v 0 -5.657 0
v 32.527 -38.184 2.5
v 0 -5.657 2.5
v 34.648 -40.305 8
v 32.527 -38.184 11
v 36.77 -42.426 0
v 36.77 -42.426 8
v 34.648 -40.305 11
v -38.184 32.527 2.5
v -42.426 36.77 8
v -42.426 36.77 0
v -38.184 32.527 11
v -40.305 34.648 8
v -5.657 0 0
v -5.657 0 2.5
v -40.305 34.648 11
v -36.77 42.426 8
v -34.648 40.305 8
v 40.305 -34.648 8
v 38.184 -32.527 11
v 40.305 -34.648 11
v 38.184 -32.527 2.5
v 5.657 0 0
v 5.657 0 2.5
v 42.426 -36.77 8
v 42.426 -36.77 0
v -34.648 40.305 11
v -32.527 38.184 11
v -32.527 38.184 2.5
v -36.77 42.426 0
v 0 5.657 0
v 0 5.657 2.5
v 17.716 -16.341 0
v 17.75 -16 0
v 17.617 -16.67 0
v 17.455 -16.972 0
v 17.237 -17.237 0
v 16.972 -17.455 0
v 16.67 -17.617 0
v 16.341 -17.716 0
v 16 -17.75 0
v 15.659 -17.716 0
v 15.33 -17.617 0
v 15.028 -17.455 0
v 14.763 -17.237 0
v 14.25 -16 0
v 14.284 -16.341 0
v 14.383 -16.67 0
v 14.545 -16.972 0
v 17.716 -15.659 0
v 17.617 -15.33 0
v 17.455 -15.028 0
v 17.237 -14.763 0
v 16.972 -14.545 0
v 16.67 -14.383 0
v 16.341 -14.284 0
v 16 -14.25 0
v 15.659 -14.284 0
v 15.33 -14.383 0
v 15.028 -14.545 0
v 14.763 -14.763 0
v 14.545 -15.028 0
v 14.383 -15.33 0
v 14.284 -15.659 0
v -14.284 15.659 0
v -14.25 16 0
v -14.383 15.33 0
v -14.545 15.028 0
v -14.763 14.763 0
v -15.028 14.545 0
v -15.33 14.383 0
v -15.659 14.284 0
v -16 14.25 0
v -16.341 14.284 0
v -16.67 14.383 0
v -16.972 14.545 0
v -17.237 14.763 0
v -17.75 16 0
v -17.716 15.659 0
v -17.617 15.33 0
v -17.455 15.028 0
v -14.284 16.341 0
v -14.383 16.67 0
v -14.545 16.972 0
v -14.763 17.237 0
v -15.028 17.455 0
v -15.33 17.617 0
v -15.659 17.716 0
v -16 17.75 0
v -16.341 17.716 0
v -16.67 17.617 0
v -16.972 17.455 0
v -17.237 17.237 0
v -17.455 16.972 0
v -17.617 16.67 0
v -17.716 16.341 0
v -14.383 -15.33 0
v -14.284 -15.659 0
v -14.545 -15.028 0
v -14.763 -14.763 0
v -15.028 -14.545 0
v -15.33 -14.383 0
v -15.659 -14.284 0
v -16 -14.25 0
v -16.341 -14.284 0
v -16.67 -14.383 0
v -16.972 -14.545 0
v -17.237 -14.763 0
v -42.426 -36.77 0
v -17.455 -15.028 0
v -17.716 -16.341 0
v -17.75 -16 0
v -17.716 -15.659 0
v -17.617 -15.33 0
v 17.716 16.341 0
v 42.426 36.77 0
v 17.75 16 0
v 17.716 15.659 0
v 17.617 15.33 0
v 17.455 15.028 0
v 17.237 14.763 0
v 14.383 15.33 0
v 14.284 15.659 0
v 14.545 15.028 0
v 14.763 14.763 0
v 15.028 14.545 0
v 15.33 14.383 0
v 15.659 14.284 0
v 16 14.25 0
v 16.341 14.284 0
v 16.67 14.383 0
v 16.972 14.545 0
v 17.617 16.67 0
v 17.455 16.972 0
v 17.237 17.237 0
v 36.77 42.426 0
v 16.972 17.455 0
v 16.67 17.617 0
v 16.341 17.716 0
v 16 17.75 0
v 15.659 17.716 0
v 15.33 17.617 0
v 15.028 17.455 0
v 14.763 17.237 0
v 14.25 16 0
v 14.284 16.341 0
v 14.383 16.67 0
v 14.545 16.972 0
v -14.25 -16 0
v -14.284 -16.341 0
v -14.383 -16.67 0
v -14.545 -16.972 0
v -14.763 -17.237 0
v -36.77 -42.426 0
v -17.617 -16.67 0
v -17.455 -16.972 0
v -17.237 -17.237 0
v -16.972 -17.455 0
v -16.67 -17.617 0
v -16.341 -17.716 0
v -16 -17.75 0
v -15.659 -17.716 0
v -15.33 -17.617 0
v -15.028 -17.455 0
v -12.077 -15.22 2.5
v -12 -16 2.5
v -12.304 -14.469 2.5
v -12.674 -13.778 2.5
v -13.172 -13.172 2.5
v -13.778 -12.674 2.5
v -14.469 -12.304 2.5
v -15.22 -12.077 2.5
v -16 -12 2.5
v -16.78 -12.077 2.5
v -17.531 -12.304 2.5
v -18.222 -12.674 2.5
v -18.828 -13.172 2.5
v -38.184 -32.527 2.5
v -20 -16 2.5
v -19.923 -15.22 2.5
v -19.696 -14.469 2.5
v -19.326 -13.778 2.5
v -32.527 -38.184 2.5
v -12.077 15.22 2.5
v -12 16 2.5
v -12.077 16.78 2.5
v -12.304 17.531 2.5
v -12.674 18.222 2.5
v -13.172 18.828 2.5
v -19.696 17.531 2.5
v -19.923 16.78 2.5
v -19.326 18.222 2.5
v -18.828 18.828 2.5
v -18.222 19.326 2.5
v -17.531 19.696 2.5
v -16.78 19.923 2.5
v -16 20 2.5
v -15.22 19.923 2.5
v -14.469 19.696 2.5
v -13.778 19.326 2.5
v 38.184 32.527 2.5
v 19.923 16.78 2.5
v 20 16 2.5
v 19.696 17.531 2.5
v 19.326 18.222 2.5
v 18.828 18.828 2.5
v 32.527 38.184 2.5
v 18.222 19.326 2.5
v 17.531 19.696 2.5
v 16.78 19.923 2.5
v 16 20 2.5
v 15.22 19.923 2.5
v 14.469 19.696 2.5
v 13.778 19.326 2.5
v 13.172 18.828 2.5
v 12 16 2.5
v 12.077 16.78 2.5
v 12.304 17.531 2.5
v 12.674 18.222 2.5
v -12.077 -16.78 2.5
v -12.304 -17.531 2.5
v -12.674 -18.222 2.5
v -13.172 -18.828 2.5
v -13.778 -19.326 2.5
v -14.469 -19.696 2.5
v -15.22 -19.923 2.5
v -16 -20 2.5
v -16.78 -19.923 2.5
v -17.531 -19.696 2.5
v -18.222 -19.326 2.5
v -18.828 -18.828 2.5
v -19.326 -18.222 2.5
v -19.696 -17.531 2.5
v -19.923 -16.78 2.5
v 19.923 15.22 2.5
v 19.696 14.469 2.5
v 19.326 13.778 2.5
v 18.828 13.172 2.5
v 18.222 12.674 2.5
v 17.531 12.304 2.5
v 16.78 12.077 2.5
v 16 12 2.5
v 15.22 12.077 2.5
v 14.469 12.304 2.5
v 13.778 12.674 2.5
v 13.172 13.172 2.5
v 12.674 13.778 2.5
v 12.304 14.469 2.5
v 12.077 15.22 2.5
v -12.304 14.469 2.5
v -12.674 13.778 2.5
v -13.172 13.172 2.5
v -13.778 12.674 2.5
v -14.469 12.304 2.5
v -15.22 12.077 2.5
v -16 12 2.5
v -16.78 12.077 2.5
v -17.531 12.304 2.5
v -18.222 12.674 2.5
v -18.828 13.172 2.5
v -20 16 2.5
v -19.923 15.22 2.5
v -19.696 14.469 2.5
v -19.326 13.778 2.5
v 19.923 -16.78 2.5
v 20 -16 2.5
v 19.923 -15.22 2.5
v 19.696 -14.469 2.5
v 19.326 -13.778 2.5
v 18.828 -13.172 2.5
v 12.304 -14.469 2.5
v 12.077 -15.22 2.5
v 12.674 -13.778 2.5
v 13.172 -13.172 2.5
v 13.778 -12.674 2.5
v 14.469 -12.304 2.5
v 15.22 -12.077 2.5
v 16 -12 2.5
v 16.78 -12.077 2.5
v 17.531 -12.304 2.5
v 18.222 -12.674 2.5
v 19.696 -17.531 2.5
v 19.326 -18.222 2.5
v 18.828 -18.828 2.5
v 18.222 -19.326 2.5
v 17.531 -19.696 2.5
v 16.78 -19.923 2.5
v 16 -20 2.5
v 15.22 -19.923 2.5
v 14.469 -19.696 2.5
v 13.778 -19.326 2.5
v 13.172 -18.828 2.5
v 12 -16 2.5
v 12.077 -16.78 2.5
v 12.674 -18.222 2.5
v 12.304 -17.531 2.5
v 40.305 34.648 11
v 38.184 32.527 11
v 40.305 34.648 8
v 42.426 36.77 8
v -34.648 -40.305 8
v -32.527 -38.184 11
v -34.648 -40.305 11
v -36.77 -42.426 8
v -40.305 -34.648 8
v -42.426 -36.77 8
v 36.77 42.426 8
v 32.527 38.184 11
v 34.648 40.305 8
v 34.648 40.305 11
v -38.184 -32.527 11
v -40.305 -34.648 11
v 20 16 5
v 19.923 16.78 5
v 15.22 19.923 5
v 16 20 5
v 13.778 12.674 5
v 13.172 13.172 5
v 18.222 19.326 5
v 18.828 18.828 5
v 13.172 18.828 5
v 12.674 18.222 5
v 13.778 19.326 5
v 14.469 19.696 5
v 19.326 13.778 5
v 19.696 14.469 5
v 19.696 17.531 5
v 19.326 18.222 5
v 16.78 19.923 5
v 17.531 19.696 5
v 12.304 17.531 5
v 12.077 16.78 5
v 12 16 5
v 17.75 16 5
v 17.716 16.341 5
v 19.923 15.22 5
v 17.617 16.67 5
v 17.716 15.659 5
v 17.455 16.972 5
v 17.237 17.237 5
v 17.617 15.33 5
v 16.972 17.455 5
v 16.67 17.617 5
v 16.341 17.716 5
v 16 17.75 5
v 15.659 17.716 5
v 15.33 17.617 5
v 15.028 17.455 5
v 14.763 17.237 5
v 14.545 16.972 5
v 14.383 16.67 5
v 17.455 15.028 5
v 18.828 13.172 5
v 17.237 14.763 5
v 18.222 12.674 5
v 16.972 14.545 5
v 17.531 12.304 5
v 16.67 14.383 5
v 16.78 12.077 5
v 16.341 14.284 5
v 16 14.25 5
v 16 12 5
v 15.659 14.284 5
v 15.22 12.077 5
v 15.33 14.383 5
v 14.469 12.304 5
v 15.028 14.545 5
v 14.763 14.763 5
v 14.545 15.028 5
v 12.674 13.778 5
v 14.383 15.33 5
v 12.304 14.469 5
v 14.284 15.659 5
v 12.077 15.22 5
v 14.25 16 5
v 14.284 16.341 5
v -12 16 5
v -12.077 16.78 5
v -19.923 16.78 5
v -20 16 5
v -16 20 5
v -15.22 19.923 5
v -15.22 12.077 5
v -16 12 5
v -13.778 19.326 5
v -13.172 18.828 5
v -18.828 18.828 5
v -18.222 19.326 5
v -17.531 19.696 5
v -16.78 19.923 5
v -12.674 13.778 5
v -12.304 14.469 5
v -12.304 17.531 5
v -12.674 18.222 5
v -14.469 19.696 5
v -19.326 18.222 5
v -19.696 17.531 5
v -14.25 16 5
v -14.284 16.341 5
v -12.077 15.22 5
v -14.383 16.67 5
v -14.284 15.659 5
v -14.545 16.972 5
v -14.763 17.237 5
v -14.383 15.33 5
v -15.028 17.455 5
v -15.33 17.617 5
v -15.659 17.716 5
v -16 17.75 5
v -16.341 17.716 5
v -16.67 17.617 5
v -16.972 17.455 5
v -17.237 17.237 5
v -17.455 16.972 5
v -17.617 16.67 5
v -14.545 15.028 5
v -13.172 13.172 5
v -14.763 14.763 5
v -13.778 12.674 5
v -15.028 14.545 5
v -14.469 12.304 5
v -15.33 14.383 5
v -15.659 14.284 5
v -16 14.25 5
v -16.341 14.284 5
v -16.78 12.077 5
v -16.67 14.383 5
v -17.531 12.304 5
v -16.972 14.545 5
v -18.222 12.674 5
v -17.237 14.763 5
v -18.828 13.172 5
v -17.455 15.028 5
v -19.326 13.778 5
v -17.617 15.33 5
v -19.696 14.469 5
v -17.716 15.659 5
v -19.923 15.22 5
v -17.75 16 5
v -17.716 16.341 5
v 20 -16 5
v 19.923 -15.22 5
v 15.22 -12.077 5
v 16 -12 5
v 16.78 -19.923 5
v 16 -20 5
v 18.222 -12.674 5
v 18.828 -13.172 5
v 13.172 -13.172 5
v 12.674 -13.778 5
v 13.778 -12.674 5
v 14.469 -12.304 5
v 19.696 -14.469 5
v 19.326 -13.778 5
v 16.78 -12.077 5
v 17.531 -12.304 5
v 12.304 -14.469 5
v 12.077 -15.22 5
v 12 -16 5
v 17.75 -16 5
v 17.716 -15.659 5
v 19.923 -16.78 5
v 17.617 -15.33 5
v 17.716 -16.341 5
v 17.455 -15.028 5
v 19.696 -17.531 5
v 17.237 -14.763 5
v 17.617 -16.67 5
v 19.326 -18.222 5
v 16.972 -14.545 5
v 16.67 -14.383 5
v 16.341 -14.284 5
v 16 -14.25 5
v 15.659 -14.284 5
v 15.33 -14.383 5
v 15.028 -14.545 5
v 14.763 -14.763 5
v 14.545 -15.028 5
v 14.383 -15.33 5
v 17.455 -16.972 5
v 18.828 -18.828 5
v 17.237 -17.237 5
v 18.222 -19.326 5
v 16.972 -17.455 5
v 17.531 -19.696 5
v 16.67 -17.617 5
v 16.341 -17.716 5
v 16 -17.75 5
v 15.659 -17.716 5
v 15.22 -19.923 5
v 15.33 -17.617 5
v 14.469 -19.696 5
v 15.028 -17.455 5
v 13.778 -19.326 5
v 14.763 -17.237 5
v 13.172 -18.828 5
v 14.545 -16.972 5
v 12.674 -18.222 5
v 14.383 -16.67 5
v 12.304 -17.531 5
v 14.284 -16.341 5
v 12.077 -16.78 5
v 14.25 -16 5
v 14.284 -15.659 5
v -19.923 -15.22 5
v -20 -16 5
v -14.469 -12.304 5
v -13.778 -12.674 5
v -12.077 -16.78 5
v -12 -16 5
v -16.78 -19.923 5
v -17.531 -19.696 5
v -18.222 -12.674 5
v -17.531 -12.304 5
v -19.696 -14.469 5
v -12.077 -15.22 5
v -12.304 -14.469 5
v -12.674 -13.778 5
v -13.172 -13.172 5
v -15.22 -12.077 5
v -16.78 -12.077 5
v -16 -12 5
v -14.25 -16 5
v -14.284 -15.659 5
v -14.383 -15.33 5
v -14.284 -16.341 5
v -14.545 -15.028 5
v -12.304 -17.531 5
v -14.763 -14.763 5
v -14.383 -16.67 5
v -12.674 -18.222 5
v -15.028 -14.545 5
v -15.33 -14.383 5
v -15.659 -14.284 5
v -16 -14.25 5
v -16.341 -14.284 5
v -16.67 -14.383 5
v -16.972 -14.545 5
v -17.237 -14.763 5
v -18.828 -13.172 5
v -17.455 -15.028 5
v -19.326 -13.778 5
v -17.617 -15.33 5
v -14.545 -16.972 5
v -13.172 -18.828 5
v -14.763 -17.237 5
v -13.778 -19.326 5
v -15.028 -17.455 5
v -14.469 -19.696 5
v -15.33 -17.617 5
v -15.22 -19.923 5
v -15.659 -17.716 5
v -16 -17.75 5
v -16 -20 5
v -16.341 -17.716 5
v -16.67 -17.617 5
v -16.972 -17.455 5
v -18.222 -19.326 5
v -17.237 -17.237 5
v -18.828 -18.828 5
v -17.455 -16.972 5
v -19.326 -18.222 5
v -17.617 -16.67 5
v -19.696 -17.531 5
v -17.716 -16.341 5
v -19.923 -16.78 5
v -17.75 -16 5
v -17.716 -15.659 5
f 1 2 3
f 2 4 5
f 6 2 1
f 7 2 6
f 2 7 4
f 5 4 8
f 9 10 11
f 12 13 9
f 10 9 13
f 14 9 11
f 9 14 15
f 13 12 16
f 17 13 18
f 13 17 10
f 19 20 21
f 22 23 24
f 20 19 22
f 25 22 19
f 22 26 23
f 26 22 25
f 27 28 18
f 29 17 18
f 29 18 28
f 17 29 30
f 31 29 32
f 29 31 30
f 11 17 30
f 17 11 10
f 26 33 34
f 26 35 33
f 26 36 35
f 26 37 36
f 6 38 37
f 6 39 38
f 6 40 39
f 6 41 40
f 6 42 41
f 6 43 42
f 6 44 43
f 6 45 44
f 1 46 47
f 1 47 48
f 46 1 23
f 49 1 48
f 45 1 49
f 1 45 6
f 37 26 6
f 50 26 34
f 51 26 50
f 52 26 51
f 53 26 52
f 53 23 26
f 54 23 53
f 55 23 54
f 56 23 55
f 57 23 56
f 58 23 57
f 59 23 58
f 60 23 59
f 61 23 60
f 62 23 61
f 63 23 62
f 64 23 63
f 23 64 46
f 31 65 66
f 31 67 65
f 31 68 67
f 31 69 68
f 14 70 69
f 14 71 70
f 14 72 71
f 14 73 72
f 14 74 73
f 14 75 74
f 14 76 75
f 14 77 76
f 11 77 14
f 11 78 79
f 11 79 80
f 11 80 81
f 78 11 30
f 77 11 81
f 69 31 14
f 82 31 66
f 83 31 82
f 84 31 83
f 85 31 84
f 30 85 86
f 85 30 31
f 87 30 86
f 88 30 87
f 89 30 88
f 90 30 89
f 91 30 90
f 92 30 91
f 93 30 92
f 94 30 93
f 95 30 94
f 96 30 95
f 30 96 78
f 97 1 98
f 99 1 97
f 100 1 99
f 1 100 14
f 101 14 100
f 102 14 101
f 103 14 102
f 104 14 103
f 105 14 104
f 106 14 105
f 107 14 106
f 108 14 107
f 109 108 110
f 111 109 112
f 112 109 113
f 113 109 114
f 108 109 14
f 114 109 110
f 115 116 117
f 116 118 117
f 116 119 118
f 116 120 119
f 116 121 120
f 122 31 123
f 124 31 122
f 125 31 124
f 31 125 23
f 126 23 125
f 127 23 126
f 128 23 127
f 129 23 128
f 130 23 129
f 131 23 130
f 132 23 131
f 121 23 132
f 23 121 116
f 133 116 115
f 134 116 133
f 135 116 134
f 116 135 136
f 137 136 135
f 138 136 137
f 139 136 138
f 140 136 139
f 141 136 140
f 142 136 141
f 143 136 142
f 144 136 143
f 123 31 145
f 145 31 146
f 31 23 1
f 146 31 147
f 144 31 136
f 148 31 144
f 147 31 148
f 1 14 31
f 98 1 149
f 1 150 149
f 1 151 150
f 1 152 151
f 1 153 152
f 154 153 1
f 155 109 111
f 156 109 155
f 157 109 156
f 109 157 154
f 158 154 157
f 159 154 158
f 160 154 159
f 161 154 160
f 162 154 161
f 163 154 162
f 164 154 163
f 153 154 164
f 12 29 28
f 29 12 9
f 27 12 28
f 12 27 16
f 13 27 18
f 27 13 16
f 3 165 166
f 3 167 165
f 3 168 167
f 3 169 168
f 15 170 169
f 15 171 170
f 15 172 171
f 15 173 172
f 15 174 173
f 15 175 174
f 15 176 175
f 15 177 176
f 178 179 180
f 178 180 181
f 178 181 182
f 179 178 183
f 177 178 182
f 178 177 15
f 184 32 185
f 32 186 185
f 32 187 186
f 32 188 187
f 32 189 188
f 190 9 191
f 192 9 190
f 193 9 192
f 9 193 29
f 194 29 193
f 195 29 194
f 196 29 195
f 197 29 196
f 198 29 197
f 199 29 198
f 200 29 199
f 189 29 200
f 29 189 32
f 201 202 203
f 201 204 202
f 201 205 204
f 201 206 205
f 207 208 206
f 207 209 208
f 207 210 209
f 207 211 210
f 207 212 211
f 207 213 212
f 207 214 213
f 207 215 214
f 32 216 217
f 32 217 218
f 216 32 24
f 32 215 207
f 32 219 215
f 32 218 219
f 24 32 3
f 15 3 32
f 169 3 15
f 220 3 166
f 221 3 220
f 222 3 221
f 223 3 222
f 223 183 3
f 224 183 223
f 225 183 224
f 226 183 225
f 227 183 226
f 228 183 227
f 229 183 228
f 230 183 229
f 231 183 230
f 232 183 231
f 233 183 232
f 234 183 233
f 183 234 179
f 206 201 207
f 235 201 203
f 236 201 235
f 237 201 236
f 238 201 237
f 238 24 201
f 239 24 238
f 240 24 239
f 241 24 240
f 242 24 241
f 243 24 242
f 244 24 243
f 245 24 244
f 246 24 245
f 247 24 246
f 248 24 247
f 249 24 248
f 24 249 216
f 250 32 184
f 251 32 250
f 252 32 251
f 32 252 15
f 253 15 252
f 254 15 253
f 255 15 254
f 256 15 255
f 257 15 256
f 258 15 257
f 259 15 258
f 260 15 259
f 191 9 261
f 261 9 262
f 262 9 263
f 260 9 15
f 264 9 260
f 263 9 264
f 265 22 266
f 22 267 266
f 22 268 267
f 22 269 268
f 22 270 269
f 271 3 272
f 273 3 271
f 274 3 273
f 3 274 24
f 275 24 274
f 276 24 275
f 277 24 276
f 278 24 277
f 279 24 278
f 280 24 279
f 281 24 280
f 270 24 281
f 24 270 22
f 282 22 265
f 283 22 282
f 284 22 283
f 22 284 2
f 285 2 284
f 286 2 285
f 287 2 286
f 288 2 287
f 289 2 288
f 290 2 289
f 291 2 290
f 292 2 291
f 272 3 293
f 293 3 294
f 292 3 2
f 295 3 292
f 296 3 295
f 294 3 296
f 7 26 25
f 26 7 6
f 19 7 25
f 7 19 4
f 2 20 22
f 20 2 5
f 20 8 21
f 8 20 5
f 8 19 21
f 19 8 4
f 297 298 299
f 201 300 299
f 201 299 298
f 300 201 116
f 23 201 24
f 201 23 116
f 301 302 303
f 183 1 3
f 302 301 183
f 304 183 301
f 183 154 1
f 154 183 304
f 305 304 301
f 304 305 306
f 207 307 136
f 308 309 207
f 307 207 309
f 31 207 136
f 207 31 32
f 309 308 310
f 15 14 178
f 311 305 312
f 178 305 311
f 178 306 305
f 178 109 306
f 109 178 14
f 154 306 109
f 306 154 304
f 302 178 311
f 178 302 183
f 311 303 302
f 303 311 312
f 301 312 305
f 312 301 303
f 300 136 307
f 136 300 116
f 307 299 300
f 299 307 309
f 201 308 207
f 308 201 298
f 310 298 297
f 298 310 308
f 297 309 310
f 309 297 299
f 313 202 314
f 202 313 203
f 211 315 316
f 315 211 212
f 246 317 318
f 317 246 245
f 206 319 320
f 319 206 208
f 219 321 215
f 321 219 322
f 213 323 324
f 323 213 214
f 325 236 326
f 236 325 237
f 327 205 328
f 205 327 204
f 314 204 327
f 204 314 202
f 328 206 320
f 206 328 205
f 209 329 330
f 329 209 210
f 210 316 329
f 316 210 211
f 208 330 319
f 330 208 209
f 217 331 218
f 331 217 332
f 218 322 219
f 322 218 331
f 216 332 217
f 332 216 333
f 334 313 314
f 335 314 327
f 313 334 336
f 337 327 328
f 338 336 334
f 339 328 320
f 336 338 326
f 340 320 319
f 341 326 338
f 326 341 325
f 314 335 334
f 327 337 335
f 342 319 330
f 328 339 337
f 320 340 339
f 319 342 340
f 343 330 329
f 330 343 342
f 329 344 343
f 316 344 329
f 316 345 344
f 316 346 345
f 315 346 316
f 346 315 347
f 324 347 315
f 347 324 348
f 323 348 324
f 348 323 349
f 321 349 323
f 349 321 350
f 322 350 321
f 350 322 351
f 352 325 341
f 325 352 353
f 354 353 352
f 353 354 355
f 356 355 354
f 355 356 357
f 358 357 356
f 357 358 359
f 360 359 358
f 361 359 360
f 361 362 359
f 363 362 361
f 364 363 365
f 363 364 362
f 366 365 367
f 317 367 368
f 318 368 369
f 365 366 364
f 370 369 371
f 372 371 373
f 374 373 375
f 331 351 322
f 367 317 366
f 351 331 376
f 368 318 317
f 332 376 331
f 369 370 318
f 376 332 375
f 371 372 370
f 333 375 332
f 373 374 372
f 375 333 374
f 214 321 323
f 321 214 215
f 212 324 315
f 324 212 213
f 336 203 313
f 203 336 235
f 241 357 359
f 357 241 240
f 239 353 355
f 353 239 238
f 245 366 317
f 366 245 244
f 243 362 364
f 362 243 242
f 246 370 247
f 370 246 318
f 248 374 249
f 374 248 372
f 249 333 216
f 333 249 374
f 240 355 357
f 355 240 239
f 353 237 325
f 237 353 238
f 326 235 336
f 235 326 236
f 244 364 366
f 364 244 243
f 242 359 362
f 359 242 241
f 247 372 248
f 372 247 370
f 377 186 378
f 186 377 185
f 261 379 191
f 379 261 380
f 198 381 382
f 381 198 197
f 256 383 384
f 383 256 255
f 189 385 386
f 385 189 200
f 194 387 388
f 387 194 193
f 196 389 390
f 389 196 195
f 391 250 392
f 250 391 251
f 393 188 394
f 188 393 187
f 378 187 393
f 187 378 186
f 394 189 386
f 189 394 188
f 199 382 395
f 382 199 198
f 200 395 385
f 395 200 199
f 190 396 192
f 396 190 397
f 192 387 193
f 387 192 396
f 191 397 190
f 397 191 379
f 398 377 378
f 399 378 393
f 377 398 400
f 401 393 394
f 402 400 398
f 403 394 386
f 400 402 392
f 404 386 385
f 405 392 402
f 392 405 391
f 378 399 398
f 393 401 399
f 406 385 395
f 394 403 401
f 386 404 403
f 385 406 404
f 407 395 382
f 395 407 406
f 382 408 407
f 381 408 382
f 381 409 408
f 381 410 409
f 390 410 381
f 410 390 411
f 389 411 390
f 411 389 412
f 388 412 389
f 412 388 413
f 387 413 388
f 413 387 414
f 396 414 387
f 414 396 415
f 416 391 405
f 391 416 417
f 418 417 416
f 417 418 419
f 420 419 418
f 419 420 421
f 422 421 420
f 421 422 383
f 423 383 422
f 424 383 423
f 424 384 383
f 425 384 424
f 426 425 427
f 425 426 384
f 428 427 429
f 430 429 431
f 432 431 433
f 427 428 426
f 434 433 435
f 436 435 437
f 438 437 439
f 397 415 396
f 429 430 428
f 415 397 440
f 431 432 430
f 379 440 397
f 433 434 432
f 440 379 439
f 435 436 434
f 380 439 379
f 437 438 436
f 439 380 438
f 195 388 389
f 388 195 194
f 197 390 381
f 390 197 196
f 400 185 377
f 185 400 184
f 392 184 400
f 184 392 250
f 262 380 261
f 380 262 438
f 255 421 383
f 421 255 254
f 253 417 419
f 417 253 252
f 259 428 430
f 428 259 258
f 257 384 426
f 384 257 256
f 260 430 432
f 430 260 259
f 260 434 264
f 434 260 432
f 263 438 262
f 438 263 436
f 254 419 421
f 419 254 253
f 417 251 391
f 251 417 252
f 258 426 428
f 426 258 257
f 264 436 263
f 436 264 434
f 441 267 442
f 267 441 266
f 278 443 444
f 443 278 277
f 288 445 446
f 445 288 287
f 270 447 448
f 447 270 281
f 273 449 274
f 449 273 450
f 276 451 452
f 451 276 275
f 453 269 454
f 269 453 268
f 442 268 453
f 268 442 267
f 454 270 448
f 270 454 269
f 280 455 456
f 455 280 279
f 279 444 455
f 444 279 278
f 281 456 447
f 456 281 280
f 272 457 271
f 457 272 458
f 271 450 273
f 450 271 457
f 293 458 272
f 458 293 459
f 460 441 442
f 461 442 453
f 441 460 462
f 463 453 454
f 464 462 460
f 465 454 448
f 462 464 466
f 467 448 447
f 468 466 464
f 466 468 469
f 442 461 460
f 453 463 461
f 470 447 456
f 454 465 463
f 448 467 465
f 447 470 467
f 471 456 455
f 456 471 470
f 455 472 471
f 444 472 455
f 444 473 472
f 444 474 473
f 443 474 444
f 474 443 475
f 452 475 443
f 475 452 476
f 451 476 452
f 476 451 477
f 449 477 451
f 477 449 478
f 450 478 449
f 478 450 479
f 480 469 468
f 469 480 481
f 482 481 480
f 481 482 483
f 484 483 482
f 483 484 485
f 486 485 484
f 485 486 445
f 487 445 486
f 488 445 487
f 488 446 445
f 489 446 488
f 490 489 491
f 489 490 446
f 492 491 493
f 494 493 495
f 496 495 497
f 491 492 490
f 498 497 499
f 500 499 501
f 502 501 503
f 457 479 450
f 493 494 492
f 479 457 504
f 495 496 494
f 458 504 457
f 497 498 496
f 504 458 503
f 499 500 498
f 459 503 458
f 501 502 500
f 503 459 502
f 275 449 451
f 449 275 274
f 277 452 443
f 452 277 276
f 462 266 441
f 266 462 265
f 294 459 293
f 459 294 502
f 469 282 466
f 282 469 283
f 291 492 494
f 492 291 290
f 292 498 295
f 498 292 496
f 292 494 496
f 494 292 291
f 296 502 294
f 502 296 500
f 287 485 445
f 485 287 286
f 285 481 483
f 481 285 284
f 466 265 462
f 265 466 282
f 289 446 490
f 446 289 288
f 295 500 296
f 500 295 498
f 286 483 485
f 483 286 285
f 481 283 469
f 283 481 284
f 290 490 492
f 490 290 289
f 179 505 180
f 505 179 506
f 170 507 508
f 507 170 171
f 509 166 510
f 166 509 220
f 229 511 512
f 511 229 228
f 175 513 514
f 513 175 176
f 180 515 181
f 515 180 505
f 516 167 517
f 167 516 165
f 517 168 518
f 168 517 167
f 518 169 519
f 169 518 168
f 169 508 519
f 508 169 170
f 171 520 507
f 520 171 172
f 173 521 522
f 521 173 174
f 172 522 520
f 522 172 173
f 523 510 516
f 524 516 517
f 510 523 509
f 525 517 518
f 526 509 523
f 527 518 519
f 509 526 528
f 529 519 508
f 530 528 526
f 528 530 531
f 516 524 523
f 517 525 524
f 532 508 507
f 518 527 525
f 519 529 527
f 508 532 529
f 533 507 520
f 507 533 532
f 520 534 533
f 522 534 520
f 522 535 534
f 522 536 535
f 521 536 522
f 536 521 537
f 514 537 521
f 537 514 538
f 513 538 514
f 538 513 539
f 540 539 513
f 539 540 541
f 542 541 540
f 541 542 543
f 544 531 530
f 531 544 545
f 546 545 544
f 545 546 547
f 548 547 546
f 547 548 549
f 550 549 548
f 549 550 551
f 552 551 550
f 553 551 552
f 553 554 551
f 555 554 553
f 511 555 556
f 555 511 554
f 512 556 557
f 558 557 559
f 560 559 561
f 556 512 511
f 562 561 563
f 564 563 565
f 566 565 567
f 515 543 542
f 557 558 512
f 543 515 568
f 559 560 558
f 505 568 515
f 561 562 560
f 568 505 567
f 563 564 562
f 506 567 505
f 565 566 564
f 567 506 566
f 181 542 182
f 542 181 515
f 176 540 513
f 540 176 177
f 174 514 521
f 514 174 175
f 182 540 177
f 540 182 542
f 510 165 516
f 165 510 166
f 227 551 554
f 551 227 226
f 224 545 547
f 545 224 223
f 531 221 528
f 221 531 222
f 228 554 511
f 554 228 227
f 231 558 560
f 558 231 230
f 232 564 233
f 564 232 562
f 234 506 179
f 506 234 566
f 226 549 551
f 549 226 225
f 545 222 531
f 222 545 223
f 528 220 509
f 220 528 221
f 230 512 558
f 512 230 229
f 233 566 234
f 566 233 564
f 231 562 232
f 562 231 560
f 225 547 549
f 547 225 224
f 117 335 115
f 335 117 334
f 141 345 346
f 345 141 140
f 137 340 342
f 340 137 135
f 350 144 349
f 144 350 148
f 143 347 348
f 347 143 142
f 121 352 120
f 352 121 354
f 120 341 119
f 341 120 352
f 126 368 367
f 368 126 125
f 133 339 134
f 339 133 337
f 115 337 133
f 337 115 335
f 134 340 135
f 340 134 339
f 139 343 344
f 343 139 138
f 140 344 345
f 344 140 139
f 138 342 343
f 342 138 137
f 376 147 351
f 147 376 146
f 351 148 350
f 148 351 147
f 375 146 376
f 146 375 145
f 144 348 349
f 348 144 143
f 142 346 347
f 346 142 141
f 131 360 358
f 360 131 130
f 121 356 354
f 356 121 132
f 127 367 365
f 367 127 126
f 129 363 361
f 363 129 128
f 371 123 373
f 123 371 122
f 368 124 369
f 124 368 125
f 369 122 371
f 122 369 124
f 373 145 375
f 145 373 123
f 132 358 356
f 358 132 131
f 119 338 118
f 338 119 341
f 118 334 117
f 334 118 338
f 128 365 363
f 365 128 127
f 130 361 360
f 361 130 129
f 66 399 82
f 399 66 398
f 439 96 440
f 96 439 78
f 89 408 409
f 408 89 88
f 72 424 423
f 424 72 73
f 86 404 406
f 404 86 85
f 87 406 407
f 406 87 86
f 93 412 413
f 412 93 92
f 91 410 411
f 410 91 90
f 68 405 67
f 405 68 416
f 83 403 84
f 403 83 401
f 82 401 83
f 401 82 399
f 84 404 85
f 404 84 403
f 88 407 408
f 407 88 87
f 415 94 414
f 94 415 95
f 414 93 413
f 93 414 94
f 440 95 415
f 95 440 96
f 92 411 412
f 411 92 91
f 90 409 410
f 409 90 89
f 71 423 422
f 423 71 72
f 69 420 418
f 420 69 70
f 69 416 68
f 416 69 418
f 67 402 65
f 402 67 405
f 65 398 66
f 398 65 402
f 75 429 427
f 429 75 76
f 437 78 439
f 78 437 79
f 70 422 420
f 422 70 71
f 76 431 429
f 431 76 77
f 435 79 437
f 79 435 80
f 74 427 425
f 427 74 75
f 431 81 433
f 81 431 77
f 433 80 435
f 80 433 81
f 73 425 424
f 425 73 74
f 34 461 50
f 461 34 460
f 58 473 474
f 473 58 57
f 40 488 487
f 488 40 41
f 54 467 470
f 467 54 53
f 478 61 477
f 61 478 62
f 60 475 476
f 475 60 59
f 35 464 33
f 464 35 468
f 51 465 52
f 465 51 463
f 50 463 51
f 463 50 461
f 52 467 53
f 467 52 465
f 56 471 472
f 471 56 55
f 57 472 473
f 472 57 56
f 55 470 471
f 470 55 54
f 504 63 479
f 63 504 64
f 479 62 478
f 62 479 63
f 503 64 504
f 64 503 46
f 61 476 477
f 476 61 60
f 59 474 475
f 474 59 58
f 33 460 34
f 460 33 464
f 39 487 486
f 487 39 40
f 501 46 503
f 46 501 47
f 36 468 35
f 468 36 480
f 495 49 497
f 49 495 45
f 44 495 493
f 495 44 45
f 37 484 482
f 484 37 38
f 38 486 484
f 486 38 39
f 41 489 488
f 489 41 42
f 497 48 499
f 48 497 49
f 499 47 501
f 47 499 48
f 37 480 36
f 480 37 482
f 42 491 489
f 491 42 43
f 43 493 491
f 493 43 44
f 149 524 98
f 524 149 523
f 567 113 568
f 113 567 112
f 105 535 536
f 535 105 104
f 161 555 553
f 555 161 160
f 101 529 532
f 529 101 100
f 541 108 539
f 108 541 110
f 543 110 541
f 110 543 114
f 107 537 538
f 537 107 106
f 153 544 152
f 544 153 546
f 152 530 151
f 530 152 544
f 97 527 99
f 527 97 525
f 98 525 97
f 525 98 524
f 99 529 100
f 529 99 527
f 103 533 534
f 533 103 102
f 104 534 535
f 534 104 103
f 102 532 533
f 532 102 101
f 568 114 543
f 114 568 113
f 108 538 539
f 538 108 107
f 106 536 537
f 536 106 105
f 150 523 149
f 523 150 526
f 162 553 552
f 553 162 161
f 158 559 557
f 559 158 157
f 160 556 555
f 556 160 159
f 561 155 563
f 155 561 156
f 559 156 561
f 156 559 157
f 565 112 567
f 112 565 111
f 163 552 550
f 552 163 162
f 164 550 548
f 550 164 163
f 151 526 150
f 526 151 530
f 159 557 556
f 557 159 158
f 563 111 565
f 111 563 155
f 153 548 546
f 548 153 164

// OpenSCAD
module led5050()
{
    // 5050 SMD LED
    // Body
    color("white")
        difference()
        {
            translate([-2.5,-2.5,0.1])
                    cube([5,5,1.6]);
            translate([-2.7,-2.7,2])        
                rotate([0,0,45])        
                    cube([2,2,1],center=true);
        }

    // Yellow spot    
    translate([0,0,0.701])
        color("yellow")
            cylinder(h=1,r=2,$fn=100);

    // Pin
    color("gray")
        for(i=[-1.6,0,1.6])
            for(j=[-1,1])
            {
                translate([j * 2.2,i,0.1])
                    cube([1,1,0.2],center=true);
                translate([j * 2.6,i,0.4])
                    cube([0.2,1,0.8],center = true);
            }
}

b = 15;
h = 15;
w = 3;

/*
// loudspeaker plate
difference()
{
union()
{
    difference()
    {
        cylinder(h=50,d=160,$fn=100);
        translate([0,0,3])
            cylinder(h=47.001,d=154,$fn=100);
        // assembly holes
        for(i = [[50,50,-1],[-50,50,-1],[50,-50,-1],[-50,-50,-1]])
            translate(i)
                cylinder(h=7,d=3.5,$fn=32);
        // loudspeaker mounting holes
        for(i = [[41,41,-1],[-41,41,-1],[41,-41,-1],[-41,-41,-1]])
            translate(i)
                cylinder(h=7,d=4.5,$fn=32);
        // back plate cutout
        translate([61,-60,3])
            cube([20,120,50]);

        translate([0,0,-0.5])
            cylinder(h=4,d=92,$fn=100);
    }
    // back plate
    translate([58,-51,0])
        cube([3,5,50]);
    translate([59.5,-46,3])
        // Extruded triangle
        rotate(a=[90,-90,-90])
            linear_extrude(height = w, center = true, convexity = 10, twist = 0)
                polygon(points=[[0,0],[h,0],[0,b]], paths=[[0,1,2]]);
    translate([58,46,0])
        cube([3,5,50]);
    translate([58,-51,0])
        cube([3,102,8]);
    translate([59.5,46,3])
        // Extruded triangle
        rotate(a=[90,-90,90])
            linear_extrude(height = w, center = true, convexity = 10, twist = 0)
                polygon(points=[[0,0],[h,0],[0,b]], paths=[[0,1,2]]);

    // cylinder(h=3, d= 20, $fn=100);
    for(i=[0:4])
    {
        difference()
        {
            cylinder(h=3, d=84-i*16, $fn=100);
            translate([0,0,-0.5])
                cylinder(h=4, d=76-i*16, $fn=100);
        }
    }
    for(i=[0:7])
        rotate([0,0,i*45])
            translate([-2,6,0])
                cube([4,40,3]);
}
translate([56,-44,10])
    rotate(a=[0,90,0])
        cylinder(h=7,d=2.5,$fn=100);
translate([56,44,10])
    rotate(a=[0,90,0])
        cylinder(h=7,d=2.5,$fn=100);
}
*/


difference()
{
    union()
    {
        for(i=[0:1])
            rotate([0,0,45+i*90])
            {
                translate([-4,-56,0])
                    cube([8,112,2.5]);
                translate([-4,50,0])
                {
                    cube([8,6,8]);
                    cube([8,3,11]);
                }
                translate([-4,-56,0])
                    cube([8,6,8]);
                translate([-4,-53,0])
                    cube([8,3,11]);
            }
        for(i = [[16,16,2],[-16,16,2],[16,-16,2],[-16,-16,2]])
            translate(i)
                cylinder(h=3,d=8,$fn=32);
    }   
    // light mounting holes
    for(i = [[16,16,-1],[-16,16,-1],[16,-16,-1],[-16,-16,-1]])
        translate(i)
            cylinder(h=7,d=3.5,$fn=32);
}






/*
// top plate
difference()
{
union()
{
    difference()
    {
        cylinder(h=35,d=160,$fn=100);
        translate([0,0,3])
            cylinder(h=47.001,d=154,$fn=100);
        // assembly holes
        for(i = [[50,50,-1],[-50,50,-1],[50,-50,-1],[-50,-50,-1]])
            translate(i)
                cylinder(h=7,d=3.5,$fn=32);
        // back plate cutout
        translate([61,-60,3])
            cube([20,120,50]);

        translate([0,0,-0.5])
            cylinder(h=4,d=82,$fn=100);
    }
    // back plate
    translate([58,-51,0])
        cube([3,5,35]);
    translate([59.5,-46,3])
        // Extruded triangle
        rotate(a=[90,-90,-90])
            linear_extrude(height = w, center = true, convexity = 10, twist = 0)
                polygon(points=[[0,0],[h,0],[0,b]], paths=[[0,1,2]]);
    translate([58,46,0])
        cube([3,5,35]);
    translate([58,-51,0])
        cube([3,102,8]);
    translate([59.5,46,3])
        // Extruded triangle
        rotate(a=[90,-90,90])
            linear_extrude(height = w, center = true, convexity = 10, twist = 0)
                polygon(points=[[0,0],[h,0],[0,b]], paths=[[0,1,2]]);

    difference()
    {
        for(i=[0:1])
            rotate([0,0,45+i*90])
                translate([-6,-45,0])
                    cube([12,90,3]);
        // light mounting holes
        for(i = [[16,16,-1],[-16,16,-1],[16,-16,-1],[-16,-16,-1]])
            translate(i)
                cylinder(h=7,d=3.5,$fn=32);
    }


}
translate([56,-44,10])
    rotate(a=[0,90,0])
        cylinder(h=7,d=2.5,$fn=100);
translate([56,44,10])
    rotate(a=[0,90,0])
        cylinder(h=7,d=2.5,$fn=100);
}
*/

/*
// PSU plate
difference()
{
    union()
    {
        difference()
        {
            cylinder(h=50,d=160,$fn=100);
            translate([0,0,3])
                cylinder(h=47.001,d=154,$fn=100);
            // assembly holes
            for(i = [[50,50,-1],[-50,50,-1],[50,-50,-1],[-50,-50,-1]])
                translate(i)
                    cylinder(h=7,d=3.5,$fn=32);
            // bottom hole
            translate([0,0,-0.5])
                cylinder(h=4,d=130,$fn=100);
        }
        // back bottom support
        translate([46,-48,0])
            cube([15,96,3]);
        
        // back plate
        translate([58,-51,0])
            cube([3,5,50]);
        translate([58,46,0])
            cube([3,5,50]);
        
        // PSU holding cross
        rotate([0,0,5])
        {
            difference()
            {
                union()
                {
                    for(i=[0:1])
                        rotate([0,0,i*90])
                            translate([-7.5,-70,0])
                                cube([15,140,3]);
                    translate([-26,3,0])
                        cylinder(h=8,d=9,$fn=100);
                    translate([29,3,0])
                        cylinder(h=8,d=9,$fn=100);
                    
                    translate([0,40,0])
                        cylinder(h=8,d=9,$fn=100);
                    translate([0,-40,0])
                        cylinder(h=8,d=9,$fn=100);
                }
            translate([-26,3,-0.001])
                cylinder(h=8.002,d=3.5,$fn=20);
            translate([29,3,-0.001])
                cylinder(h=8.002,d=3.5,$fn=20);
            }
       }
    }
    // back plate cutout
    translate([61,-60,-0.001])
        cube([20,120,50.002]);
}
*/


/*
// PSU
rotate([0,0,5])
    difference()
    {
            translate([-50,-49,8])
                color("gray")
                    cube([100,98,37]);
        translate([-26,3,7.5])
            cylinder(h=40,d=3,$fn=20);
        translate([29,3,7.5])
            cylinder(h=40,d=3,$fn=20);
    }
*/

/*
// bottom ring
difference()
{
    union()
    {
        cylinder(h=3,d=160,$fn=100);
        for(i = [[50,50,3],[-50,50,3],[50,-50,3],[-50,-50,3]])
            translate(i)
                cylinder(h=10,d=13.5,$fn=32);
    }
    // assembly holes
    for(i = [[50,50,-1],[-50,50,-1],[50,-50,-1],[-50,-50,-1]])
        translate(i)
            cylinder(h=15,d=3.5,$fn=32);
    for(i = [[50,50,8],[-50,50,8],[50,-50,8],[-50,-50,8]])
        translate(i)
            cylinder(h=15,d=8,$fn=32);
    // bottom hole
    translate([0,0,-0.5])
        cylinder(h=4,d=128,$fn=100);
}
*/


/*
translate([0,0,200])
{
// Holder ring
difference()
{
    cylinder(h=5,d=160,$fn=100);
    translate([0,0,-0.001])
    cylinder(h=111, d1=114, d2=80, $fn=100);
    for(i = [[50,50,-1],[-50,50,-1],[50,-50,-1],[-50,-50,-1]])
        translate(i)
            cylinder(h=7,d=3.5,$fn=100);
}



// Transparent hull
color("azure",0.5)
    %difference()
    {
        cylinder(h=111,d1=114, d2=80,$fn=100);
        translate([0,0,-0.001])
            cylinder(h=96,d1=104, d2=70,$fn=100);
        cube([150,150,150]);
    }
    
// Top and bottom boards
color("green")
{
    cylinder(h=1.6,d=90,$fn=100);
    translate([0,0,92])
        cylinder(h=1.6,d=60,$fn=100);
}

// Neopixel light panels
 for(i=[0:22.5:350])
    rotate([0,0,i])
        translate([-46,0,0])
            rotate([0,-81,0])
                translate([0,-6,0])
                {
                     color("green")
                        cube([95,12,1.6]);
                     for(j=[9:8.5:90])
                         translate([j,6,1.6])
                            rotate([0,0,90])
                                led5050();
                }
}
*/
